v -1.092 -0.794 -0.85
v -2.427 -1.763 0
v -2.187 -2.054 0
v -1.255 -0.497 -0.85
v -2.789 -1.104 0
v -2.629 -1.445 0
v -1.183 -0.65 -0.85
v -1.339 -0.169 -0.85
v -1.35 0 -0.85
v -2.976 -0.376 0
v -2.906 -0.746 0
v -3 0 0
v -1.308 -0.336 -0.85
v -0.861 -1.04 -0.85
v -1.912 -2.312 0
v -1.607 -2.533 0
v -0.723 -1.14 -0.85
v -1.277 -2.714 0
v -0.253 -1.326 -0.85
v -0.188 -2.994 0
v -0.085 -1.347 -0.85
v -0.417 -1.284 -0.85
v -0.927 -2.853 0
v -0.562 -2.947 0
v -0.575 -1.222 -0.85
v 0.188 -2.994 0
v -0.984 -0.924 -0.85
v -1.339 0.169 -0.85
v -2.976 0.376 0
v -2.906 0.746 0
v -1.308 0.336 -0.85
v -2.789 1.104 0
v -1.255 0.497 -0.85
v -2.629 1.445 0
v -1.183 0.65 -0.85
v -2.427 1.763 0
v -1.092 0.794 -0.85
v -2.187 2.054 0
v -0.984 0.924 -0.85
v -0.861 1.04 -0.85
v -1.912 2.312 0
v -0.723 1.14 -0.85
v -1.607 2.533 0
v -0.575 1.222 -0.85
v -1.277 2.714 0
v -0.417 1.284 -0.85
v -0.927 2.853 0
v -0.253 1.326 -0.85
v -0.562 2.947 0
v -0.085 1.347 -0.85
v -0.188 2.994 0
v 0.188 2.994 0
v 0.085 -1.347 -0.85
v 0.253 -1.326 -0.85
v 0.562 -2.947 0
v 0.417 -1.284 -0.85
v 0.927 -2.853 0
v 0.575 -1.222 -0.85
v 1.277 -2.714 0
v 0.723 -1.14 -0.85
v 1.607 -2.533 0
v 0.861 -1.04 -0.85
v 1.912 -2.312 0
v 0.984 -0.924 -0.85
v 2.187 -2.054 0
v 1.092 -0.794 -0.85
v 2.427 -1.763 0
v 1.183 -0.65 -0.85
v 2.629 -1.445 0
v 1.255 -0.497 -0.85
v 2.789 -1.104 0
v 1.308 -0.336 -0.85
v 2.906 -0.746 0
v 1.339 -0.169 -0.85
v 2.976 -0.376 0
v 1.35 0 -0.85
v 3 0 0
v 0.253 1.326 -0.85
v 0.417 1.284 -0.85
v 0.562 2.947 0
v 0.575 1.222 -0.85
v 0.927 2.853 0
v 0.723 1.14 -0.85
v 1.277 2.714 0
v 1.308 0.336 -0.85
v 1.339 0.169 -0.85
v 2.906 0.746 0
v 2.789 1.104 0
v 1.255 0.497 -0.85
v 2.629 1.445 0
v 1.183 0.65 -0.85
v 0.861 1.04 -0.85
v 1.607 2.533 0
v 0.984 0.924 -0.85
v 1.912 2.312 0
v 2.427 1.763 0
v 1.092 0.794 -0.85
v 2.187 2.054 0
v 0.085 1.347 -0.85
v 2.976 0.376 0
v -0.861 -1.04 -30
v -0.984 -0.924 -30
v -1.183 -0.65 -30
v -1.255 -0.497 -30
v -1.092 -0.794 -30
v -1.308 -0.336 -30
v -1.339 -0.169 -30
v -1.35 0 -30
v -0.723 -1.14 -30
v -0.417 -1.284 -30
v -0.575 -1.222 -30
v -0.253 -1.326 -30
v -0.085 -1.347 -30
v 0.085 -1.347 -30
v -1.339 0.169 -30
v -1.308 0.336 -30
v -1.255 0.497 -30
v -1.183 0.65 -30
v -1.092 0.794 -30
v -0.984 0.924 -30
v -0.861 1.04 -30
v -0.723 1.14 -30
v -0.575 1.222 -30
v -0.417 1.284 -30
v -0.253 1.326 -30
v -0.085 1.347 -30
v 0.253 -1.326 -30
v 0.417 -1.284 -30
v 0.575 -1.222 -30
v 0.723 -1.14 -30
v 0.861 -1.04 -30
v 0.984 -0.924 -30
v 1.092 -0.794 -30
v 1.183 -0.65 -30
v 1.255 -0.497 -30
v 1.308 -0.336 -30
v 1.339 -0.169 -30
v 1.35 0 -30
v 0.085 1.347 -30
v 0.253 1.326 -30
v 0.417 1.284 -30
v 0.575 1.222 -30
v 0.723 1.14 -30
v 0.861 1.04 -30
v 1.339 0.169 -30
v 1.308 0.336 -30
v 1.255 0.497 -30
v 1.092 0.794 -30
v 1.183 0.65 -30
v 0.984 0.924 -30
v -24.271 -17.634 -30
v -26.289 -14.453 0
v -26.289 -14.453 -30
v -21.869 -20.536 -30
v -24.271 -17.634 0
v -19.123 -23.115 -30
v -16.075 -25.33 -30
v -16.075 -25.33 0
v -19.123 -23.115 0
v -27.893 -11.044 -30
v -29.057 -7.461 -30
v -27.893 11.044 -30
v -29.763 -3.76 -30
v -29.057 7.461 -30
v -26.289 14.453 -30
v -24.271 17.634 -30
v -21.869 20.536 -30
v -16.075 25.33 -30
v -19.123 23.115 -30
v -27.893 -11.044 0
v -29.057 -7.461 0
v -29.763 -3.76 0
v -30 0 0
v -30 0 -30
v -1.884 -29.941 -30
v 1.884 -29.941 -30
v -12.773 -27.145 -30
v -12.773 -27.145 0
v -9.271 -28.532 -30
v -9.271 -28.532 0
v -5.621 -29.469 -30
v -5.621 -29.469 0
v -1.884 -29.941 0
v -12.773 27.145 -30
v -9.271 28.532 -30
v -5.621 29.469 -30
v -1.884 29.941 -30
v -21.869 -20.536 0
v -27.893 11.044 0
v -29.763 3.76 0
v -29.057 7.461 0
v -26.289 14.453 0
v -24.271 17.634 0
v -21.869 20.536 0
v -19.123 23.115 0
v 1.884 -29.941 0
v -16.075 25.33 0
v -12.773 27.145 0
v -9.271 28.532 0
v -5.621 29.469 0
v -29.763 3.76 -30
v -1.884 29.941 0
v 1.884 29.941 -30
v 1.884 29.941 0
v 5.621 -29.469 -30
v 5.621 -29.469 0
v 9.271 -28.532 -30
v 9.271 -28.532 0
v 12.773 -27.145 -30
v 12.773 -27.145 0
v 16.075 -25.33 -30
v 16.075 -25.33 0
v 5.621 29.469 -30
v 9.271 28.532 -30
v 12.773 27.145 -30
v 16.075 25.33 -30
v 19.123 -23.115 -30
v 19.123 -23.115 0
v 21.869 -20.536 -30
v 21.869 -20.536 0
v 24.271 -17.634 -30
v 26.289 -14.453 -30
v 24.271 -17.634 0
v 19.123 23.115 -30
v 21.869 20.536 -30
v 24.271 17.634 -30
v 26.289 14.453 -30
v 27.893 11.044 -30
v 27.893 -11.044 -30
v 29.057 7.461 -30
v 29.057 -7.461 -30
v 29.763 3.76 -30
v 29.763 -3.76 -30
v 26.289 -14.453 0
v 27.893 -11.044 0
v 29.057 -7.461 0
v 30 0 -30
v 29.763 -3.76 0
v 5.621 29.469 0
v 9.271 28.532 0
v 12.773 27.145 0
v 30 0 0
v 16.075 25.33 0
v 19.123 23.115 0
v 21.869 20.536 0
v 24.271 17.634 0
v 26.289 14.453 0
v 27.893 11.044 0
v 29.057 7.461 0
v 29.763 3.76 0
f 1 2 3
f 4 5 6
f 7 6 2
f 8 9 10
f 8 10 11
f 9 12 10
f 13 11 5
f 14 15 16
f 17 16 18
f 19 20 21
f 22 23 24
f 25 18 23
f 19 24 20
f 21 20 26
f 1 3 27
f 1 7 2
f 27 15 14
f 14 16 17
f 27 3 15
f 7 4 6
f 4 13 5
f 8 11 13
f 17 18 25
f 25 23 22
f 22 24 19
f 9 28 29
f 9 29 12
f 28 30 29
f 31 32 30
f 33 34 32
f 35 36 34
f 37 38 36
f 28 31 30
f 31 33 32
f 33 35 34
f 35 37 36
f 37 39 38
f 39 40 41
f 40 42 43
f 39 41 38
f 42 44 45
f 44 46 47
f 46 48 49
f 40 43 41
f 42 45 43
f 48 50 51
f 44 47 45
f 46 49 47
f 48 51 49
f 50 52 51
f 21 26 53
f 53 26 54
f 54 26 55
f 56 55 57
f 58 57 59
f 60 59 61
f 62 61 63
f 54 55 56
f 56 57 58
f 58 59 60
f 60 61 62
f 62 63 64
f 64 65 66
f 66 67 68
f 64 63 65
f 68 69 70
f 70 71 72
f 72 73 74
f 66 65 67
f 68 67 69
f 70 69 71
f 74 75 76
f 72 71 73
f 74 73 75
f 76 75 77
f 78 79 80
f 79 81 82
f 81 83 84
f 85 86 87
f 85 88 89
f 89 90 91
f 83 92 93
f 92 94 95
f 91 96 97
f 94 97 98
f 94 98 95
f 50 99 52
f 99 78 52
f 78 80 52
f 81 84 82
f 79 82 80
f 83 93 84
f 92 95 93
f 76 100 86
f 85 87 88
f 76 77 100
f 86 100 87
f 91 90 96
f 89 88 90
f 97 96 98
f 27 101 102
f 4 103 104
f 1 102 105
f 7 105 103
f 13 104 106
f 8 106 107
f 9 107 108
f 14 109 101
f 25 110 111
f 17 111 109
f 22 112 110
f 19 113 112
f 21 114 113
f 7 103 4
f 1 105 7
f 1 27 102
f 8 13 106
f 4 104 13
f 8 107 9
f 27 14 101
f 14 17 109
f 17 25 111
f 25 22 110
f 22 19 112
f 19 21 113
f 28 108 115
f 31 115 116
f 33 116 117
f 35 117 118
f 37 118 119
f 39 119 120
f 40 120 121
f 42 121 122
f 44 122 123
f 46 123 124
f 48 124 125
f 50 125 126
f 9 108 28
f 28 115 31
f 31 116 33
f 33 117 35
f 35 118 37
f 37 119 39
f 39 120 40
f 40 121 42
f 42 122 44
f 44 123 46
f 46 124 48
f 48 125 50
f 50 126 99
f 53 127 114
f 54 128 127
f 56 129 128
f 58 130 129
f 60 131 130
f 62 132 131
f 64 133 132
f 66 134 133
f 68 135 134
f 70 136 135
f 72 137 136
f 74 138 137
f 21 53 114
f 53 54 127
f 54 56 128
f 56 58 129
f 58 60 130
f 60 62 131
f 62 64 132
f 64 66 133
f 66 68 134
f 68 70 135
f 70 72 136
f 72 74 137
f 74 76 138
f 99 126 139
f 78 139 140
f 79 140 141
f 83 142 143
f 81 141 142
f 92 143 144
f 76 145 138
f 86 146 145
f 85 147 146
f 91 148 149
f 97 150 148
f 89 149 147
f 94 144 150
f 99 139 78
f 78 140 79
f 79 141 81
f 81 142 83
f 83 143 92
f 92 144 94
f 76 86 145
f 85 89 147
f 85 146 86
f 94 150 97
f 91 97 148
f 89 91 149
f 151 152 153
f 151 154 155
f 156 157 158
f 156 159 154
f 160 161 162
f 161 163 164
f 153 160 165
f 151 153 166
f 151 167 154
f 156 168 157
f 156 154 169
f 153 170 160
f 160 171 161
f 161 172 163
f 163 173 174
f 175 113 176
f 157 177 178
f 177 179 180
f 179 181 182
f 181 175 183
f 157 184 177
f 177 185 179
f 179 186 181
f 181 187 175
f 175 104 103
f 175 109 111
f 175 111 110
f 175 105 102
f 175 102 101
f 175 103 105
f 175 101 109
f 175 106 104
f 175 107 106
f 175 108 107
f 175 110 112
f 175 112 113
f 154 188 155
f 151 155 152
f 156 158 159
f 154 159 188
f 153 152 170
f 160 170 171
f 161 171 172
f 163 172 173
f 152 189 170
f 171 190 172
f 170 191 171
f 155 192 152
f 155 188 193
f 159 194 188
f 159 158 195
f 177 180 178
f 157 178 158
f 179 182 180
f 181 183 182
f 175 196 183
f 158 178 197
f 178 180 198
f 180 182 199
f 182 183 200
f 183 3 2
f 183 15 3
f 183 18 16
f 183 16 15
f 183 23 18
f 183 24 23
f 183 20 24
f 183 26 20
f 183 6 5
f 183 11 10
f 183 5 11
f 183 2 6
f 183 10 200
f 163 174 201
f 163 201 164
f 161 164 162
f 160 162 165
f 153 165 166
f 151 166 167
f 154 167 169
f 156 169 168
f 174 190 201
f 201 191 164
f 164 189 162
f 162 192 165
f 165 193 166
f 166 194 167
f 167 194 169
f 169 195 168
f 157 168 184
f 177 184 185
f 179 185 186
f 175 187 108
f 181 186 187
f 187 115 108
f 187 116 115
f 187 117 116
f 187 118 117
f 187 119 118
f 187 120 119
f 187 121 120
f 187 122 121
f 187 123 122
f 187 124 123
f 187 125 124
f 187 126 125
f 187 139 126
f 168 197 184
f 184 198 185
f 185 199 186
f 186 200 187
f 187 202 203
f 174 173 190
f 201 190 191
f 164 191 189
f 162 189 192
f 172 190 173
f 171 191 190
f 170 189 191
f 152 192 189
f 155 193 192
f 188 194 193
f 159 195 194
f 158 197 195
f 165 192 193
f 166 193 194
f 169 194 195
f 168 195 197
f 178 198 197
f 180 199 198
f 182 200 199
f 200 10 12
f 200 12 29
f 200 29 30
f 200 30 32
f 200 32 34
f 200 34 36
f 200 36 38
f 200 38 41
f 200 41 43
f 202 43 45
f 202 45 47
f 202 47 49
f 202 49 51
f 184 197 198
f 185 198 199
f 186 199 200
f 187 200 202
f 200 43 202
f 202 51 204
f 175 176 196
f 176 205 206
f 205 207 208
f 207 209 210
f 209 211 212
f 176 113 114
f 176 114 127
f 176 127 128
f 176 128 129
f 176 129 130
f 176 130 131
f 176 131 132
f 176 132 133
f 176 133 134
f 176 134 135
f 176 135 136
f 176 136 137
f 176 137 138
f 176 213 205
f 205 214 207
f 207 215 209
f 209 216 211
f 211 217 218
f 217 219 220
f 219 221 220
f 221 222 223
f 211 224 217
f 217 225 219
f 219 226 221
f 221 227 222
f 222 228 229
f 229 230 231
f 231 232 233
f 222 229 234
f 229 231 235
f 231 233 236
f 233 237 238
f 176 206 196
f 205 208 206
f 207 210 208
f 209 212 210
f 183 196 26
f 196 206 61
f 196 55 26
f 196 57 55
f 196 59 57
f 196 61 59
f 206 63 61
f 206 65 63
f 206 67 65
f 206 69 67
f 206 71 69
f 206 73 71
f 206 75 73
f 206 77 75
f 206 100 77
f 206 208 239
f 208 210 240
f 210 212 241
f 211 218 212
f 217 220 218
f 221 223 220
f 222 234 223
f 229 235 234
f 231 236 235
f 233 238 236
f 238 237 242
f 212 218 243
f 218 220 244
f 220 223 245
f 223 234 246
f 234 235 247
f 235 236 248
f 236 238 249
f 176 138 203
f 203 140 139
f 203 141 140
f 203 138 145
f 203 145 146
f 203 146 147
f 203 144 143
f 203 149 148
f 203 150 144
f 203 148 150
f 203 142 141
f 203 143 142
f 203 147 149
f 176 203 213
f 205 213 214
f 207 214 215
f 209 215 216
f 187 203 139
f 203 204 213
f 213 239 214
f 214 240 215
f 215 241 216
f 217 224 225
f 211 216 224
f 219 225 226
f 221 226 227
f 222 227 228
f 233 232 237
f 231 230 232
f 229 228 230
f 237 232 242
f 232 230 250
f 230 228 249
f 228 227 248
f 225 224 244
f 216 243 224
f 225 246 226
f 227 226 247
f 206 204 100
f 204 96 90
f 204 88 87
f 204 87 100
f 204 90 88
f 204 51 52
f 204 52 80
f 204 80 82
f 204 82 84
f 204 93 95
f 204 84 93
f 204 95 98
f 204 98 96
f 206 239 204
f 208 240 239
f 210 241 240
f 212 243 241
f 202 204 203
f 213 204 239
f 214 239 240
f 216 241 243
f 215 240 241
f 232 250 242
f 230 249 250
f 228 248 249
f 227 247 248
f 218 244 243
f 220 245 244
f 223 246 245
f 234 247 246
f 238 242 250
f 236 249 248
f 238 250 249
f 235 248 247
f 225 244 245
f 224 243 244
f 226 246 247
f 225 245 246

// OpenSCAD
$fn = 50;


difference() {
	union() {
		translate(v = [0, 0, -30.0000000000]) {
			cylinder(h = 30, r = 30.0000000000);
		}
	}
	union() {
		translate(v = [0, 0, 0]) {
			rotate(a = [0, 0, 0]) {
				difference() {
					union() {
						translate(v = [0, 0, -33.0000000000]) {
							cylinder(h = 33, r = 1.0000000000);
						}
						translate(v = [0, 0, -0.8500000000]) {
							cylinder(h = 0.8500000000, r1 = 1.3500000000, r2 = 3.0000000000);
						}
						translate(v = [0, 0, -33.0000000000]) {
							cylinder(h = 33, r = 1.3500000000);
						}
						translate(v = [0, 0, -33.0000000000]) {
							cylinder(h = 33, r = 1.0000000000);
						}
					}
					union();
				}
			}
		}
	}
}
